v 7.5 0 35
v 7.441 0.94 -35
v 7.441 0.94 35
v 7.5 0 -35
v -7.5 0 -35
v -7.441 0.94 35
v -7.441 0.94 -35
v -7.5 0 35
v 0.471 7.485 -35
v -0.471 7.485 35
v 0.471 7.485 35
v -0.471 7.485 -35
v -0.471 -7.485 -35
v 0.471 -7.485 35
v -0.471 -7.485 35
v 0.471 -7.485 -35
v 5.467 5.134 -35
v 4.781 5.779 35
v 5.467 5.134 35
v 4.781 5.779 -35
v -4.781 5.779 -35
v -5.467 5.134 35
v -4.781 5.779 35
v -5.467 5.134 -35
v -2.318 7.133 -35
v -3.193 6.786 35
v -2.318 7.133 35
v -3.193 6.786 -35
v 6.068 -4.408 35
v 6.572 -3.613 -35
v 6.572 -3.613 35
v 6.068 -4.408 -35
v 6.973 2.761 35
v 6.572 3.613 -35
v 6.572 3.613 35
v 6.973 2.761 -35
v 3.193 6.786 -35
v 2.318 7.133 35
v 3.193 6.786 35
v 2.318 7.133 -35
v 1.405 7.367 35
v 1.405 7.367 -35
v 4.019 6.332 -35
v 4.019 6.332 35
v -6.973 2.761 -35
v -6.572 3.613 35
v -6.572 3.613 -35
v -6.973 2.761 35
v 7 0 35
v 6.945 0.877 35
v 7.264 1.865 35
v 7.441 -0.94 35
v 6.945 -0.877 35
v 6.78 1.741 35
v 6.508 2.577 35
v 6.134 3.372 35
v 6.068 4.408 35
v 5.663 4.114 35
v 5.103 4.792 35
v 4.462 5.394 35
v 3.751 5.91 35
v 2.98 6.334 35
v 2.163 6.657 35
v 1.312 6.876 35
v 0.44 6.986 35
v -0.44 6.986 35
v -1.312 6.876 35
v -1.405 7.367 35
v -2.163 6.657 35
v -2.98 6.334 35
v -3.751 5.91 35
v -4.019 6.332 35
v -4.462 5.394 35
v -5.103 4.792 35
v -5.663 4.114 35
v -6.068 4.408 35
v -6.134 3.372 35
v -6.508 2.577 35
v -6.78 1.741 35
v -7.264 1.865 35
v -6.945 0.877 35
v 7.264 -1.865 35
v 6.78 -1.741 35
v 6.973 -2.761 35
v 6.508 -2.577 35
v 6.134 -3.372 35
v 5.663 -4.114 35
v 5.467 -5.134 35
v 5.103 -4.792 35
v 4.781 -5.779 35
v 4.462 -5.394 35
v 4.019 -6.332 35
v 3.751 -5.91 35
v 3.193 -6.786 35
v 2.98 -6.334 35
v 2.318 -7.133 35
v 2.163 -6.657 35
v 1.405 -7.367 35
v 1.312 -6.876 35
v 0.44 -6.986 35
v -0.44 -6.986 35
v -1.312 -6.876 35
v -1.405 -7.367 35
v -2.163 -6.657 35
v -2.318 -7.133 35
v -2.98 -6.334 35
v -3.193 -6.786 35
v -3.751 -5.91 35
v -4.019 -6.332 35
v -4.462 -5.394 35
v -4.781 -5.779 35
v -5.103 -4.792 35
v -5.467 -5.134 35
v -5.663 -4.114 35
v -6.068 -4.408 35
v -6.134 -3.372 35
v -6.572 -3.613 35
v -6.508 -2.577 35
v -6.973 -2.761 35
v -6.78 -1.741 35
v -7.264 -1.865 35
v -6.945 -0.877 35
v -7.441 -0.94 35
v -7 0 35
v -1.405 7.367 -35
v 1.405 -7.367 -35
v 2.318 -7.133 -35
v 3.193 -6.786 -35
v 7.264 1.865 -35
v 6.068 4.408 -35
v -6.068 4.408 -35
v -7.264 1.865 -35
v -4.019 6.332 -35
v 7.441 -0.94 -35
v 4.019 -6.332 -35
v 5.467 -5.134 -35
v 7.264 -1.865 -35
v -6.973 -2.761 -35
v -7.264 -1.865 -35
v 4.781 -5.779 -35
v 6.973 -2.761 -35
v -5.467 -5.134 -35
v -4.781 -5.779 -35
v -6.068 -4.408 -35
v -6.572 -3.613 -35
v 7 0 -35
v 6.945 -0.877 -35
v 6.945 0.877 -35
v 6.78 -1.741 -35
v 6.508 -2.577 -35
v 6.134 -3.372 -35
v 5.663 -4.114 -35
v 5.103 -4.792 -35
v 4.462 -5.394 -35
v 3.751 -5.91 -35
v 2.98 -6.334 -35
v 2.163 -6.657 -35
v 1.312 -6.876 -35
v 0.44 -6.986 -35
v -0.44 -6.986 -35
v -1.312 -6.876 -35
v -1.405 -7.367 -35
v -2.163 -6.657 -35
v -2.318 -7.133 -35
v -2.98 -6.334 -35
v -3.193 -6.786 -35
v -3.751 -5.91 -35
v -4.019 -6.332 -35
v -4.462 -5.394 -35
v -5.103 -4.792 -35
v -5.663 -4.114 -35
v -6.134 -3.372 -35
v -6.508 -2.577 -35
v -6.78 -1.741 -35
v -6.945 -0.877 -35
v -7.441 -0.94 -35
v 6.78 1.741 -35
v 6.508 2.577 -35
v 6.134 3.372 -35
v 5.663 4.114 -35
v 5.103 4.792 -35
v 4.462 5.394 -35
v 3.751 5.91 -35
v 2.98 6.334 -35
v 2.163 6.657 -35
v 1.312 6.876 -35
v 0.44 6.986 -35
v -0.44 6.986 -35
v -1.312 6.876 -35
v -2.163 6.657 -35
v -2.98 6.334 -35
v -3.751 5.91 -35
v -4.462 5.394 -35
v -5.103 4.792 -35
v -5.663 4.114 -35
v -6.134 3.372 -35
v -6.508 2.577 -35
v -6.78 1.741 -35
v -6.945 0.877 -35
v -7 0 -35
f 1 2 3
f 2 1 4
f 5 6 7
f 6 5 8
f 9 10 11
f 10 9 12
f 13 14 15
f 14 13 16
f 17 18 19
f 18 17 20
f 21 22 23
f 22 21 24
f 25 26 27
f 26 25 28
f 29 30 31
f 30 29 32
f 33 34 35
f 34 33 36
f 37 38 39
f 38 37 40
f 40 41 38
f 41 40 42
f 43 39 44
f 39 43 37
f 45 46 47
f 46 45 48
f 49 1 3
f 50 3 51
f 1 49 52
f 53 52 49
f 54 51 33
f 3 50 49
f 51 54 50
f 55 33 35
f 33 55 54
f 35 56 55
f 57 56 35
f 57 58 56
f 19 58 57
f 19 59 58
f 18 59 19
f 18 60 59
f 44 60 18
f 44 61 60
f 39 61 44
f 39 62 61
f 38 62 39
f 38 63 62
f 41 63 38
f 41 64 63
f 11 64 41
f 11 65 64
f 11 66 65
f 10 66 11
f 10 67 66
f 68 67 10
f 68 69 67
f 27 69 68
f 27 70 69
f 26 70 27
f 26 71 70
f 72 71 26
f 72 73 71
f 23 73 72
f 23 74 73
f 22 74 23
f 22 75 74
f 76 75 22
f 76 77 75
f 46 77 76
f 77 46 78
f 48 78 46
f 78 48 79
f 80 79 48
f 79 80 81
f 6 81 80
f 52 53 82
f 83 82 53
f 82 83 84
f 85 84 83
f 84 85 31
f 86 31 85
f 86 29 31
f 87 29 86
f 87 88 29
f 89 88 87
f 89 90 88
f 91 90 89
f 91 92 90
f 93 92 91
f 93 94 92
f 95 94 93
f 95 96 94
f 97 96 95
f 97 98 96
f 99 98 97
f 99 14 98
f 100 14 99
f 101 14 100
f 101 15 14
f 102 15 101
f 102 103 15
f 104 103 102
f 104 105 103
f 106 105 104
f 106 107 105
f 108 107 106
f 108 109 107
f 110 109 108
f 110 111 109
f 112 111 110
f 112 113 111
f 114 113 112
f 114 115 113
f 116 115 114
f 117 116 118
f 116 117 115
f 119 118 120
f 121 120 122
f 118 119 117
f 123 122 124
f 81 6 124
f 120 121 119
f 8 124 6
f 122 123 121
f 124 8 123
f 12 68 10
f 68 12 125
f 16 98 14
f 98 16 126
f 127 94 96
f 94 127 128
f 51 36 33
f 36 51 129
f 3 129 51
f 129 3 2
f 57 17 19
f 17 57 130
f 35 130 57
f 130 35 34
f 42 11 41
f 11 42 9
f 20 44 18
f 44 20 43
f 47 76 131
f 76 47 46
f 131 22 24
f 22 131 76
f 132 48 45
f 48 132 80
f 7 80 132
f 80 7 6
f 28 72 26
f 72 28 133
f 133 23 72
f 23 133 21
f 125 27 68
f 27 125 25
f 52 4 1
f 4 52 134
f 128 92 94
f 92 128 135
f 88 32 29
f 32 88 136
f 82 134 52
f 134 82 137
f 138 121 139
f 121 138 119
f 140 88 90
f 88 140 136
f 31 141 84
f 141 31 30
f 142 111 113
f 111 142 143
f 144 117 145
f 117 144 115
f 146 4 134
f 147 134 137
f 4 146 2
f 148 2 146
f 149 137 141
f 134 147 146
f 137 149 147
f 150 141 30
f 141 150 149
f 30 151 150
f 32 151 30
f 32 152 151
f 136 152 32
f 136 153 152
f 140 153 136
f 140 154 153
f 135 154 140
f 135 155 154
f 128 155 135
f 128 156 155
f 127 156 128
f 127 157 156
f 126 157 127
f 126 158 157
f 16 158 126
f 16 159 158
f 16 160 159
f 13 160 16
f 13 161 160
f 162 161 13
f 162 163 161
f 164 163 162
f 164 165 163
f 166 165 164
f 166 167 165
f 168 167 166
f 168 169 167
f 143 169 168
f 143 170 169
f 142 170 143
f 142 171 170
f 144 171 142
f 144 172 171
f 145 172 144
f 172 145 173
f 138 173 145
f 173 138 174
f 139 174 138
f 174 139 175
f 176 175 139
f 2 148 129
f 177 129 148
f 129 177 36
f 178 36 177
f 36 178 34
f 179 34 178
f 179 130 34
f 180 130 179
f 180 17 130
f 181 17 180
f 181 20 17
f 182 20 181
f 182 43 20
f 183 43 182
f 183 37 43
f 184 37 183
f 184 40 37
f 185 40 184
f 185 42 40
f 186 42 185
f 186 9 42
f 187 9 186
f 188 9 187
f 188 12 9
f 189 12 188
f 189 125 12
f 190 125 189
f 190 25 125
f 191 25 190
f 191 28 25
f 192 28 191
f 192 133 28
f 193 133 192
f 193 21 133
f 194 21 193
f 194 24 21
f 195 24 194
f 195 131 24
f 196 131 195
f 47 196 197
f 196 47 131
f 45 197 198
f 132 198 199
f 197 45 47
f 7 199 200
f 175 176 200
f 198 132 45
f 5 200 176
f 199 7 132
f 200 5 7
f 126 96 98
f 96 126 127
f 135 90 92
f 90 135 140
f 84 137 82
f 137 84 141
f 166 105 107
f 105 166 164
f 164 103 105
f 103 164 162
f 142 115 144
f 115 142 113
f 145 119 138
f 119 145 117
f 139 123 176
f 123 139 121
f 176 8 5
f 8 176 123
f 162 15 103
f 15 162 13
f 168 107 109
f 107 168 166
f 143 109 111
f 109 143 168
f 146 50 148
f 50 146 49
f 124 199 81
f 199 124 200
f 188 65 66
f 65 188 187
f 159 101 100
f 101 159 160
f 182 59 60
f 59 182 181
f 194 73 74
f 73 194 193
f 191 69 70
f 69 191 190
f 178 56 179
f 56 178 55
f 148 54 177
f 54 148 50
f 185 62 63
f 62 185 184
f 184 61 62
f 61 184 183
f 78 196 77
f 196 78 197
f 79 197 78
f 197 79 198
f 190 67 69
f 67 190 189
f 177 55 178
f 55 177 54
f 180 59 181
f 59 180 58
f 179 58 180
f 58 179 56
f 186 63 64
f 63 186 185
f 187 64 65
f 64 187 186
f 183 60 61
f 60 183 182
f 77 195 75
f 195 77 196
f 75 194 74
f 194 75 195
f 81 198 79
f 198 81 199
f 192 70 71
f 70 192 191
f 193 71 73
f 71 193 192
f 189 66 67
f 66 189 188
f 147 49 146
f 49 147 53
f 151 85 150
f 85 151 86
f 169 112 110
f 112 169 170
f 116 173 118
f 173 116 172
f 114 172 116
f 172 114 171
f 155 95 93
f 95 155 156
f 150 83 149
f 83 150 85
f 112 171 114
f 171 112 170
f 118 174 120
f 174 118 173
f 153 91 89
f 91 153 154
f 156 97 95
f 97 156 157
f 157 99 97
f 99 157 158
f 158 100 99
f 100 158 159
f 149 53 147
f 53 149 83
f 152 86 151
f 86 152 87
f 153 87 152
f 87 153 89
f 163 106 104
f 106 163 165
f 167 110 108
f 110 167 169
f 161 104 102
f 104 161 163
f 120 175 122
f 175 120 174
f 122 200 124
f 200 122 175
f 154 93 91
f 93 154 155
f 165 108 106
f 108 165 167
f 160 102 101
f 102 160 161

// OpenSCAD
$fn = 50;


difference() {
	union() {
		translate(v = [0, 0, -35.0000000000]) {
			cylinder(h = 70, r = 7.5000000000);
		}
	}
	union() {
		translate(v = [0, 0, -100.0000000000]) {
			cylinder(h = 200, r = 7);
		}
	}
}
